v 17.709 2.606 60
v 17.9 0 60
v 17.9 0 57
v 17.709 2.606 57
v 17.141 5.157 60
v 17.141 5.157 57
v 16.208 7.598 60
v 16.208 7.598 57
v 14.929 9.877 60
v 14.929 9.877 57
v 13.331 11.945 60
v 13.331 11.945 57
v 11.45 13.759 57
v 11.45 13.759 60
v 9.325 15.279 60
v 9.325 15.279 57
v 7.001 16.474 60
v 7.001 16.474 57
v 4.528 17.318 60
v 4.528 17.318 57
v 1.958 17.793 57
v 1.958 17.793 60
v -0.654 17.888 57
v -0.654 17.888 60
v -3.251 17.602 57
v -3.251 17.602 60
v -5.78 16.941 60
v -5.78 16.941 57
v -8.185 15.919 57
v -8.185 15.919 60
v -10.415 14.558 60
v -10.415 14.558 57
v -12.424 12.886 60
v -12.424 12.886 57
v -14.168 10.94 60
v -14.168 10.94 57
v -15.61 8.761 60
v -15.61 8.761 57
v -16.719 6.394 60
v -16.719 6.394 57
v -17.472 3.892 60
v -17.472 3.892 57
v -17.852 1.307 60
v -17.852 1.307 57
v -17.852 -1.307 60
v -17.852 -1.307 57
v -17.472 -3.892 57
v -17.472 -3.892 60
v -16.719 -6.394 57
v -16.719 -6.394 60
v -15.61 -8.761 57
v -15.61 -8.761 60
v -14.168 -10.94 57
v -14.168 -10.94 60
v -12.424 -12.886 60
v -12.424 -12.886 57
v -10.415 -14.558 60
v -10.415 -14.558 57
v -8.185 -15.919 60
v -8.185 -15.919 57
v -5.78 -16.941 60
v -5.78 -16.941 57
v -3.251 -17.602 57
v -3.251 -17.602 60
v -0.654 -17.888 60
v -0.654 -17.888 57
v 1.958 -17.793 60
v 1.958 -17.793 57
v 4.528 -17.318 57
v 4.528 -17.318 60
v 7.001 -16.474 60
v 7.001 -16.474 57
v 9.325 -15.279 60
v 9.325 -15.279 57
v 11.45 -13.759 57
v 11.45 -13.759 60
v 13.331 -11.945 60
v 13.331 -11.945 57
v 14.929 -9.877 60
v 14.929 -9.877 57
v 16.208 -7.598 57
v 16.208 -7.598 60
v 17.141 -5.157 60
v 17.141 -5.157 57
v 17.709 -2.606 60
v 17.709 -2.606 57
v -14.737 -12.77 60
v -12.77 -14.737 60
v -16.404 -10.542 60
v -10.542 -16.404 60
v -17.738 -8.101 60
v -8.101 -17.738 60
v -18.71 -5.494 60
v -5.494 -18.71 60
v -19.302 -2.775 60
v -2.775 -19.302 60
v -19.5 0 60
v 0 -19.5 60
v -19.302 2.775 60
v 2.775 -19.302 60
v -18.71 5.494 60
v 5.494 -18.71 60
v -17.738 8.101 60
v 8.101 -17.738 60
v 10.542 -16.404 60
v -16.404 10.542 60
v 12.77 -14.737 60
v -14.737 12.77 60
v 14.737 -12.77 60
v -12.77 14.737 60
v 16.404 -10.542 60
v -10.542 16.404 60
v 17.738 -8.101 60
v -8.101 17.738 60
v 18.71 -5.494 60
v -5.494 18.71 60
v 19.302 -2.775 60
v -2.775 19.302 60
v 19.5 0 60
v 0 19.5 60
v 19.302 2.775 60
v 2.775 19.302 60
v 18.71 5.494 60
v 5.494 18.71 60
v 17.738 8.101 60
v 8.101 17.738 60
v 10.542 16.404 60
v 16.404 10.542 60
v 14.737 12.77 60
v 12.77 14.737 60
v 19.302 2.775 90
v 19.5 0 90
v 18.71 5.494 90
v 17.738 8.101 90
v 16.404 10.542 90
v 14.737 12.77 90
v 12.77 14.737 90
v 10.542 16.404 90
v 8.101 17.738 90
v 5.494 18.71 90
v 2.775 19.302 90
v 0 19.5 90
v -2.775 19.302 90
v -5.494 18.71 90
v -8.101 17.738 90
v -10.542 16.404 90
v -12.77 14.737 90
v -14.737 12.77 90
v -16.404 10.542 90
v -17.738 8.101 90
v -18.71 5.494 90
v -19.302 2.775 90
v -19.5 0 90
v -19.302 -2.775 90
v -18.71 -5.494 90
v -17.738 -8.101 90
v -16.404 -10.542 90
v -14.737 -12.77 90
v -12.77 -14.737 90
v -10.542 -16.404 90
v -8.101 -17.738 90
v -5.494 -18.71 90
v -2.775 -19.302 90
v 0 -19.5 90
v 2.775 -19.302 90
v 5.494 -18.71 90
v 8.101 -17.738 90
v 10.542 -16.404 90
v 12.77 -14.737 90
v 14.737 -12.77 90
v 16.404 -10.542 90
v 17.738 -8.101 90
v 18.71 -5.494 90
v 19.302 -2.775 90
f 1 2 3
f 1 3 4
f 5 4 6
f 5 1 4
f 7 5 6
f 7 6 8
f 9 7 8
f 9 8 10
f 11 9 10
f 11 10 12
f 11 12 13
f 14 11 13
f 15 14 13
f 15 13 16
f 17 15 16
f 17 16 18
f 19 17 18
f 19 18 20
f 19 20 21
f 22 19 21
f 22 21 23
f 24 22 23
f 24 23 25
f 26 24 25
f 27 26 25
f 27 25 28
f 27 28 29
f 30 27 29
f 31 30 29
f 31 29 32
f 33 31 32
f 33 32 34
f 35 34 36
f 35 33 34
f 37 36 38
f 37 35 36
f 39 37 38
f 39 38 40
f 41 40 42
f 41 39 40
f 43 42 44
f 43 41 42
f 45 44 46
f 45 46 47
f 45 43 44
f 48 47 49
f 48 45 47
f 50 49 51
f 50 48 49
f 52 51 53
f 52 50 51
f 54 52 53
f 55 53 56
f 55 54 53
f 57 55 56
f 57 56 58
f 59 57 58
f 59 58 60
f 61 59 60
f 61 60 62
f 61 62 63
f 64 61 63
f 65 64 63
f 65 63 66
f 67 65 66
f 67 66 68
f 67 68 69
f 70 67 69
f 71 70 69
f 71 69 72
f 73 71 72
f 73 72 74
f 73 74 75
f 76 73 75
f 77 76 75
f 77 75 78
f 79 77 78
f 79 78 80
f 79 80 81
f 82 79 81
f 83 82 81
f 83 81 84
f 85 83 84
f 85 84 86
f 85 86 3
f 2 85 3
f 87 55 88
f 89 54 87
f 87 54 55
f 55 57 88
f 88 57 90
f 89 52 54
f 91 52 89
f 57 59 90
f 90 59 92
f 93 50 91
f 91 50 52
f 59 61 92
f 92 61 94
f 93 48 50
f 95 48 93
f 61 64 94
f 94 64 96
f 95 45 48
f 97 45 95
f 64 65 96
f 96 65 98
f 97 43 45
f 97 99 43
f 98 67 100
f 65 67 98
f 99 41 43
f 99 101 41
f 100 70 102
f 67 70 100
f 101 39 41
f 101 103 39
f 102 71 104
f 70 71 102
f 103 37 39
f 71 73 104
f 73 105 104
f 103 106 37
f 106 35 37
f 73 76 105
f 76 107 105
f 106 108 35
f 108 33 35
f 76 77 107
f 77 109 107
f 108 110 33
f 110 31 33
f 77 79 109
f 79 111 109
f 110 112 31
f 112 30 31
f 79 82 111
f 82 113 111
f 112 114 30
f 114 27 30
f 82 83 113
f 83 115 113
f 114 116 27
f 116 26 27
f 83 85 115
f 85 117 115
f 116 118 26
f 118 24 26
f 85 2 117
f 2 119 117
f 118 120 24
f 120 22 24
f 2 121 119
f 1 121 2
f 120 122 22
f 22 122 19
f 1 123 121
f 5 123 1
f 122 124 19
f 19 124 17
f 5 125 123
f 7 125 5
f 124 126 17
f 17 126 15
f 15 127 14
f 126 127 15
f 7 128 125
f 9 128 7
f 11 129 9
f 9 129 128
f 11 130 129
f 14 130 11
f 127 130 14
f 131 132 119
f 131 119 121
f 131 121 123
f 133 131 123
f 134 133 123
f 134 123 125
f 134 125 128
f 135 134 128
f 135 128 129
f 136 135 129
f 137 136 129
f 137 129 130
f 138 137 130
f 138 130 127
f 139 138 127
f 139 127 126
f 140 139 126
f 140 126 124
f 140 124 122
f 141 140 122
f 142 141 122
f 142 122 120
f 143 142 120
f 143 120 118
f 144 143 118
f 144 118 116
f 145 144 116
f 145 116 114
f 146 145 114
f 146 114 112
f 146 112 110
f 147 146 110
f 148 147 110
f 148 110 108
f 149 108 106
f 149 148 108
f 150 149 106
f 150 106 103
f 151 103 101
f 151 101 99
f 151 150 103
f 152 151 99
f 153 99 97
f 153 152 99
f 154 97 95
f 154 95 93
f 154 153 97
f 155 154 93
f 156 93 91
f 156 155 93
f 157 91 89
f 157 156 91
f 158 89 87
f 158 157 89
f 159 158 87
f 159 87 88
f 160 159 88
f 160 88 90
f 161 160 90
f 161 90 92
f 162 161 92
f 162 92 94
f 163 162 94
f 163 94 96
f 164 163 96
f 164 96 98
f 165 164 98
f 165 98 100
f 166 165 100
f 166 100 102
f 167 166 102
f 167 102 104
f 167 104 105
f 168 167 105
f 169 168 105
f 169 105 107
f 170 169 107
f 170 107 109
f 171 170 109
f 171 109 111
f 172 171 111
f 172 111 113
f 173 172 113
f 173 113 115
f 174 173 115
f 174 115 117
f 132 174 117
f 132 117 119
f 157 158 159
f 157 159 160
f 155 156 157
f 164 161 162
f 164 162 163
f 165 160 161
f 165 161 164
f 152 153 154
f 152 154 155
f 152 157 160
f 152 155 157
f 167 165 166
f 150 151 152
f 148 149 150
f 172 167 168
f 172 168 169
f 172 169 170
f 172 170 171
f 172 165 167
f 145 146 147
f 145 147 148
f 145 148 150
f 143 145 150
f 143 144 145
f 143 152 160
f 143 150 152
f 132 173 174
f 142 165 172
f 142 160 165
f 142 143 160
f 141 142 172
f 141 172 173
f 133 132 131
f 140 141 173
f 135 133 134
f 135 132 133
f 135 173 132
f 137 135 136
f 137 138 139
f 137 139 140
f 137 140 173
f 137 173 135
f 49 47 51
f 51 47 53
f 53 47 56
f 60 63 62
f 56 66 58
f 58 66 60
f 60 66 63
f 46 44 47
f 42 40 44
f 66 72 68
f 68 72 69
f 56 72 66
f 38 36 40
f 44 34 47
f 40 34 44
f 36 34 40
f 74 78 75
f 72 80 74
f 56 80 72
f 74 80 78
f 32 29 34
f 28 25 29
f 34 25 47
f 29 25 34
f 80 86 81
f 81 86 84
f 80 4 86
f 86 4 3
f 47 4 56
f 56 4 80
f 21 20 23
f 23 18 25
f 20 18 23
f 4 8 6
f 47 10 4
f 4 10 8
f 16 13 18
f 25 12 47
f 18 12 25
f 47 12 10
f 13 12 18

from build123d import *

# Parameters (mm, degrees)
CYLINDER001_R     = 19.5
CYLINDER001_DEPTH = 30
CYLINDER_R        = 10.3
CYLINDER_DEPTH    = 3
CYLINDER003_R     = 17.9
CYLINDER003_DEPTH = 3


with BuildPart() as cylinder001:
    # Cylinder001 → Cylinder001 (new body)
    with BuildSketch(Plane.XY.offset(60)):
        Circle(CYLINDER001_R)
    extrude(amount=CYLINDER001_DEPTH)


with BuildPart() as fusion:
    # Cylinder → Cylinder (new body)
    with BuildSketch(Plane.XY.offset(57)):
        Circle(CYLINDER_R)
    extrude(amount=CYLINDER_DEPTH)

    # Fusion: union Cylinder001
    add(cylinder001.part)


with BuildPart() as alargador:
    # Cylinder003 → Cylinder003 (new body)
    with BuildSketch(Plane.XY.offset(57)):
        Circle(CYLINDER003_R)
    extrude(amount=CYLINDER003_DEPTH)

    # Fusion001: union Fusion
    add(fusion.part)


solid = alargador.part
